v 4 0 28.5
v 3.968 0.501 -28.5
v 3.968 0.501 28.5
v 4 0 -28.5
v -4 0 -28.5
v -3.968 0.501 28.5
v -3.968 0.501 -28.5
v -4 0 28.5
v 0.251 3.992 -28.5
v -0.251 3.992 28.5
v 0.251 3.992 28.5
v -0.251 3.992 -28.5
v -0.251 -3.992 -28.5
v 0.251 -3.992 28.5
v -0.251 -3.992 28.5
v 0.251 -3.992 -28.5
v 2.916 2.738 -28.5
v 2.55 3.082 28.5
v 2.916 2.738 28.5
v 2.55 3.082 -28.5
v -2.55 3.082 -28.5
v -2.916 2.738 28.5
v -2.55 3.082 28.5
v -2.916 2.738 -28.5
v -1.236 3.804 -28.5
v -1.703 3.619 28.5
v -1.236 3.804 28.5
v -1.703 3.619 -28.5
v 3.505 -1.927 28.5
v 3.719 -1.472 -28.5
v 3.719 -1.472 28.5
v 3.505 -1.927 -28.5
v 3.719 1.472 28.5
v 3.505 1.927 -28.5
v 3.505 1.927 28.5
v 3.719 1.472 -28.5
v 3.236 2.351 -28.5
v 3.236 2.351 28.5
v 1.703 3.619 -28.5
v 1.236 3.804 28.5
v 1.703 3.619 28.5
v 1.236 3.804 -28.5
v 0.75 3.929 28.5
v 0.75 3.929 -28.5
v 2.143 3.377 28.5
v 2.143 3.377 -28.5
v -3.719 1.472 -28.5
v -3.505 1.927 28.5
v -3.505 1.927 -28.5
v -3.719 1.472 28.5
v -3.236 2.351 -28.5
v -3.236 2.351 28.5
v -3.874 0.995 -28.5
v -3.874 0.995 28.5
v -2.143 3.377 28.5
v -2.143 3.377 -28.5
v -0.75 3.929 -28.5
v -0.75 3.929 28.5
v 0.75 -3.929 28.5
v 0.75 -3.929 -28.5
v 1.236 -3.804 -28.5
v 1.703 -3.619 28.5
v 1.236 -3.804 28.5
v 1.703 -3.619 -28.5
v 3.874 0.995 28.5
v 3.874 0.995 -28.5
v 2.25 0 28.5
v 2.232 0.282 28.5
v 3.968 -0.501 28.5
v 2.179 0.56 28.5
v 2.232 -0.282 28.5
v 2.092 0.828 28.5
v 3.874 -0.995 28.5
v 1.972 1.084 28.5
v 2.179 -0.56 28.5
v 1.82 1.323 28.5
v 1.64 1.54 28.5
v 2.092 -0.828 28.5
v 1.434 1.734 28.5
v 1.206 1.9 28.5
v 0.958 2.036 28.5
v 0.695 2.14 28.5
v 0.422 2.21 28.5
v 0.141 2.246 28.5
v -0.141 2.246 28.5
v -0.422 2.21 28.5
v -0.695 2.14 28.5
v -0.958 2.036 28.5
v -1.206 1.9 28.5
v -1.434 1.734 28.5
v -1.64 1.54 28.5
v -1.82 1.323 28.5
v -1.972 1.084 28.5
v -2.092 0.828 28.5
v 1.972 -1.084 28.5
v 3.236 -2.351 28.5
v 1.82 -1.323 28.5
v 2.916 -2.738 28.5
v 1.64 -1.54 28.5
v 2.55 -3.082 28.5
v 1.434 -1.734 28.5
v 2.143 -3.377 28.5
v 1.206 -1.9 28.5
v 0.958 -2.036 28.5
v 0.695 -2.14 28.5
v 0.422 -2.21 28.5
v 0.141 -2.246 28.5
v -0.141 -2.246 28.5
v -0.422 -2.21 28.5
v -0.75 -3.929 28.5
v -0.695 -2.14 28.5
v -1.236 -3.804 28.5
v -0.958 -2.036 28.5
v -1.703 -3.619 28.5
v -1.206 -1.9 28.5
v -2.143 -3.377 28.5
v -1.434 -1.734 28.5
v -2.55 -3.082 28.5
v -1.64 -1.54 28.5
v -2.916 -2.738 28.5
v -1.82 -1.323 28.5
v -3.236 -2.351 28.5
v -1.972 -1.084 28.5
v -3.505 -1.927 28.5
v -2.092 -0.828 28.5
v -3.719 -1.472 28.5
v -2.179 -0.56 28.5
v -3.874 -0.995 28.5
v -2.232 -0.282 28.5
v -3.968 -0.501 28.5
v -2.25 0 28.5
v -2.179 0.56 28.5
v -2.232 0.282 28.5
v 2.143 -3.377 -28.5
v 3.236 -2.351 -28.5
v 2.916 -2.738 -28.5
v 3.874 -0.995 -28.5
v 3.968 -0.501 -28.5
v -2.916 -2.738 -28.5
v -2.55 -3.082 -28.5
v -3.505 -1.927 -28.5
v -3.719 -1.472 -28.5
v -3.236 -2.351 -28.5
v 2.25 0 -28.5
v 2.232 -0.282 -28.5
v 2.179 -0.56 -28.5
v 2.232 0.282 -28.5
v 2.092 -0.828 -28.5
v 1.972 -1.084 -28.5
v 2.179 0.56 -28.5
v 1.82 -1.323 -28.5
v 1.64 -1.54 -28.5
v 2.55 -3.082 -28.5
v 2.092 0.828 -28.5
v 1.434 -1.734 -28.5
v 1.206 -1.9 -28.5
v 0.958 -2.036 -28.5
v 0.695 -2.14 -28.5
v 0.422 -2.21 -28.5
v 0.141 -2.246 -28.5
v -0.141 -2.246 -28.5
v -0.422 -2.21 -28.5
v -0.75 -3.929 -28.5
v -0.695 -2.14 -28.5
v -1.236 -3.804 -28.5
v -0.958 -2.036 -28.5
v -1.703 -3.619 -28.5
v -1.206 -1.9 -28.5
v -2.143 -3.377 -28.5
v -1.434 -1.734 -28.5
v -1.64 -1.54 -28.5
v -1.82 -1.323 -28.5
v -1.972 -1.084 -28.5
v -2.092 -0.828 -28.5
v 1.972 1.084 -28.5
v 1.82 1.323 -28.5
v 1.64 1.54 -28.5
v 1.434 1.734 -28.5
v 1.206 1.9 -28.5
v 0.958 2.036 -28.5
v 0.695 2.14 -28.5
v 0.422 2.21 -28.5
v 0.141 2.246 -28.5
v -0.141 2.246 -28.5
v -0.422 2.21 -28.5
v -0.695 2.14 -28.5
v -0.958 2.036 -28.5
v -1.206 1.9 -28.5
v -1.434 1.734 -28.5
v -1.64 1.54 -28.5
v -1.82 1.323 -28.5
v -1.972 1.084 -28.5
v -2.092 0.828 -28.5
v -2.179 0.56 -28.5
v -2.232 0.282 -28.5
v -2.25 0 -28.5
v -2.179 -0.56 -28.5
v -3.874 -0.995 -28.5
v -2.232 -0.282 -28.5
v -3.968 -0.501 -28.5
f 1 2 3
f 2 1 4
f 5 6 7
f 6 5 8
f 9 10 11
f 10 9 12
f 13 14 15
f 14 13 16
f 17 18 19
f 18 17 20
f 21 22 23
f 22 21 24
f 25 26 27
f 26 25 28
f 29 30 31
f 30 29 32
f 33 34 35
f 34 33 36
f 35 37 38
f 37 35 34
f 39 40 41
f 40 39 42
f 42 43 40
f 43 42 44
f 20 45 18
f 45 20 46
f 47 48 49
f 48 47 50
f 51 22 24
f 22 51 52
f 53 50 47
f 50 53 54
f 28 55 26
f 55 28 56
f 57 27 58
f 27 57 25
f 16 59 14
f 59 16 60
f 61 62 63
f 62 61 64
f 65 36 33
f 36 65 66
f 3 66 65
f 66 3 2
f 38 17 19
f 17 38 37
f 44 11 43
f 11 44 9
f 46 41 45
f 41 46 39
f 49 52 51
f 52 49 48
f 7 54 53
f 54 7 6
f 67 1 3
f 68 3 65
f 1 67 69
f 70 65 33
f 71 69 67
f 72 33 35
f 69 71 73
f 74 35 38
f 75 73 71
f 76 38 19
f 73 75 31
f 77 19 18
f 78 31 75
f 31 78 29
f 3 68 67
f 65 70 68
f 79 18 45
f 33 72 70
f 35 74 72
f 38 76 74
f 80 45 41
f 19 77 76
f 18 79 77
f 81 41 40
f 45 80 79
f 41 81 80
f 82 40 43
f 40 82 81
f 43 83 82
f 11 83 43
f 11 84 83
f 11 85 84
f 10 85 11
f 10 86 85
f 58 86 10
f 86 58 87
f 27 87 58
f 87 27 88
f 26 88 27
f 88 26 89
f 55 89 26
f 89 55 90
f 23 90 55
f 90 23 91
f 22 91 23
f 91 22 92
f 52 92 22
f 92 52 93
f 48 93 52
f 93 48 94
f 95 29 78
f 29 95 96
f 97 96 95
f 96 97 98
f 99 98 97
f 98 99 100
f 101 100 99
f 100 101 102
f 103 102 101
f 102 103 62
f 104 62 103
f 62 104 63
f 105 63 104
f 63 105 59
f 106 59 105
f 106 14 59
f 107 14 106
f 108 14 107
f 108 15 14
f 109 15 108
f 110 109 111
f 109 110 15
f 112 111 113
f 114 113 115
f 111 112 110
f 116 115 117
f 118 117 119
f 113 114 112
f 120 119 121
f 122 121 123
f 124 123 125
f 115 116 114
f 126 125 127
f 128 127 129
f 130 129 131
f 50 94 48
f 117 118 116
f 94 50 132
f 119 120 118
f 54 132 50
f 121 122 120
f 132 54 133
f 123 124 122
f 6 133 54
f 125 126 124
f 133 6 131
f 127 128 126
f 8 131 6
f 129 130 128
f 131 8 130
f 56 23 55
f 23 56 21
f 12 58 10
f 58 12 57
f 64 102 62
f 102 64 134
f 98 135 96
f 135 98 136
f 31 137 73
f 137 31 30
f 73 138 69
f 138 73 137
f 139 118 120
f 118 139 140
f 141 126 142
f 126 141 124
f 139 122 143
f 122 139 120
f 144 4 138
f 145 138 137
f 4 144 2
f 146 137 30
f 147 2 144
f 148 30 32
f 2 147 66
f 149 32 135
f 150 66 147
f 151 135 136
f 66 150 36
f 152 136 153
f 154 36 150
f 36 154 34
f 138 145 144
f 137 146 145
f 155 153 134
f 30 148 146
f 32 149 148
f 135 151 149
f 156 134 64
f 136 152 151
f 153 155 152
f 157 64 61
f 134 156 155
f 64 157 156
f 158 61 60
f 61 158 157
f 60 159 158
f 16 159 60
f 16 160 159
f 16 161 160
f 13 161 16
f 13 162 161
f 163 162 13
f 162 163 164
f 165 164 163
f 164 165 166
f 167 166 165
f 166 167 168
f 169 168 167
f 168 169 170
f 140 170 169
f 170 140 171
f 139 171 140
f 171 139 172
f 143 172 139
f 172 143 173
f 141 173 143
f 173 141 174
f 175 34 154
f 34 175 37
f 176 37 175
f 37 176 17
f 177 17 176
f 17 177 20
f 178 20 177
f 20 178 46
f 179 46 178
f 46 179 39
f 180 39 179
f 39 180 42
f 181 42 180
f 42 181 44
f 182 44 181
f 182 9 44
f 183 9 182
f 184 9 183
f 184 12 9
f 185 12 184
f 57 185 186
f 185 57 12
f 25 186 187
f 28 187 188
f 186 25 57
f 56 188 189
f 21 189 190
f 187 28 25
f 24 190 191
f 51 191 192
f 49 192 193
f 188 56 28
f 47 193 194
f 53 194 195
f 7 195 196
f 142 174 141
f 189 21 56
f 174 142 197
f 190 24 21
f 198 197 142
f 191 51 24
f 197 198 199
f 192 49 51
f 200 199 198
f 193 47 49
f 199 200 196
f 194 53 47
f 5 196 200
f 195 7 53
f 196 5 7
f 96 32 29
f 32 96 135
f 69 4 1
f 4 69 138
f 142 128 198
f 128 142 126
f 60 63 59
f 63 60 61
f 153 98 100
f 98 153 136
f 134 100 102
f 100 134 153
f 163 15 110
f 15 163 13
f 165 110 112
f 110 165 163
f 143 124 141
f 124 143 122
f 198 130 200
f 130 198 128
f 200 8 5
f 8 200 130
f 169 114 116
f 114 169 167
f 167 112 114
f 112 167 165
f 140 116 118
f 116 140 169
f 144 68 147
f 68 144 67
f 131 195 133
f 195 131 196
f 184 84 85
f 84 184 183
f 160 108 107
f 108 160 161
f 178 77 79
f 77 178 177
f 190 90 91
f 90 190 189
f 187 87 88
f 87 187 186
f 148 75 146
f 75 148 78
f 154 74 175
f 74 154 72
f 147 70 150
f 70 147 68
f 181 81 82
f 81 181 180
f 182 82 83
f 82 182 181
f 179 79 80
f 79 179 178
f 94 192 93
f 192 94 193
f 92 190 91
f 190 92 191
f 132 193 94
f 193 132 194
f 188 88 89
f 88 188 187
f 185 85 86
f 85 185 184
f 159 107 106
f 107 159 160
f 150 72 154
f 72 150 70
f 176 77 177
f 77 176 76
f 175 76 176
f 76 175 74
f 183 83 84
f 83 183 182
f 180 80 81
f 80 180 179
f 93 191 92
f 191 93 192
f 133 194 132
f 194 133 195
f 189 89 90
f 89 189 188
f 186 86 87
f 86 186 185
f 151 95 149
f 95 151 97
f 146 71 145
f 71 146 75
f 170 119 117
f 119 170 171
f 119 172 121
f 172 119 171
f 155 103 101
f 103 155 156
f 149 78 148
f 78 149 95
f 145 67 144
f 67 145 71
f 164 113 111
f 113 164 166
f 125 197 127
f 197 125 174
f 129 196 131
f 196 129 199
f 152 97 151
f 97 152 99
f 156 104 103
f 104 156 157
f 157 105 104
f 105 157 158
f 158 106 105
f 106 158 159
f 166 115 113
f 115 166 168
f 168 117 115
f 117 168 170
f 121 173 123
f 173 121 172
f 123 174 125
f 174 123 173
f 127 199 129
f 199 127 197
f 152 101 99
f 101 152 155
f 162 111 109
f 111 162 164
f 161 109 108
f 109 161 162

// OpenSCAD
$fn = 50;


difference() {
	union() {
		translate(v = [0, 0, -28.5000000000]) {
			cylinder(h = 57, r = 4.0000000000);
		}
	}
	union() {
		translate(v = [0, 0, -100.0000000000]) {
			cylinder(h = 200, r = 2.2500000000);
		}
	}
}
